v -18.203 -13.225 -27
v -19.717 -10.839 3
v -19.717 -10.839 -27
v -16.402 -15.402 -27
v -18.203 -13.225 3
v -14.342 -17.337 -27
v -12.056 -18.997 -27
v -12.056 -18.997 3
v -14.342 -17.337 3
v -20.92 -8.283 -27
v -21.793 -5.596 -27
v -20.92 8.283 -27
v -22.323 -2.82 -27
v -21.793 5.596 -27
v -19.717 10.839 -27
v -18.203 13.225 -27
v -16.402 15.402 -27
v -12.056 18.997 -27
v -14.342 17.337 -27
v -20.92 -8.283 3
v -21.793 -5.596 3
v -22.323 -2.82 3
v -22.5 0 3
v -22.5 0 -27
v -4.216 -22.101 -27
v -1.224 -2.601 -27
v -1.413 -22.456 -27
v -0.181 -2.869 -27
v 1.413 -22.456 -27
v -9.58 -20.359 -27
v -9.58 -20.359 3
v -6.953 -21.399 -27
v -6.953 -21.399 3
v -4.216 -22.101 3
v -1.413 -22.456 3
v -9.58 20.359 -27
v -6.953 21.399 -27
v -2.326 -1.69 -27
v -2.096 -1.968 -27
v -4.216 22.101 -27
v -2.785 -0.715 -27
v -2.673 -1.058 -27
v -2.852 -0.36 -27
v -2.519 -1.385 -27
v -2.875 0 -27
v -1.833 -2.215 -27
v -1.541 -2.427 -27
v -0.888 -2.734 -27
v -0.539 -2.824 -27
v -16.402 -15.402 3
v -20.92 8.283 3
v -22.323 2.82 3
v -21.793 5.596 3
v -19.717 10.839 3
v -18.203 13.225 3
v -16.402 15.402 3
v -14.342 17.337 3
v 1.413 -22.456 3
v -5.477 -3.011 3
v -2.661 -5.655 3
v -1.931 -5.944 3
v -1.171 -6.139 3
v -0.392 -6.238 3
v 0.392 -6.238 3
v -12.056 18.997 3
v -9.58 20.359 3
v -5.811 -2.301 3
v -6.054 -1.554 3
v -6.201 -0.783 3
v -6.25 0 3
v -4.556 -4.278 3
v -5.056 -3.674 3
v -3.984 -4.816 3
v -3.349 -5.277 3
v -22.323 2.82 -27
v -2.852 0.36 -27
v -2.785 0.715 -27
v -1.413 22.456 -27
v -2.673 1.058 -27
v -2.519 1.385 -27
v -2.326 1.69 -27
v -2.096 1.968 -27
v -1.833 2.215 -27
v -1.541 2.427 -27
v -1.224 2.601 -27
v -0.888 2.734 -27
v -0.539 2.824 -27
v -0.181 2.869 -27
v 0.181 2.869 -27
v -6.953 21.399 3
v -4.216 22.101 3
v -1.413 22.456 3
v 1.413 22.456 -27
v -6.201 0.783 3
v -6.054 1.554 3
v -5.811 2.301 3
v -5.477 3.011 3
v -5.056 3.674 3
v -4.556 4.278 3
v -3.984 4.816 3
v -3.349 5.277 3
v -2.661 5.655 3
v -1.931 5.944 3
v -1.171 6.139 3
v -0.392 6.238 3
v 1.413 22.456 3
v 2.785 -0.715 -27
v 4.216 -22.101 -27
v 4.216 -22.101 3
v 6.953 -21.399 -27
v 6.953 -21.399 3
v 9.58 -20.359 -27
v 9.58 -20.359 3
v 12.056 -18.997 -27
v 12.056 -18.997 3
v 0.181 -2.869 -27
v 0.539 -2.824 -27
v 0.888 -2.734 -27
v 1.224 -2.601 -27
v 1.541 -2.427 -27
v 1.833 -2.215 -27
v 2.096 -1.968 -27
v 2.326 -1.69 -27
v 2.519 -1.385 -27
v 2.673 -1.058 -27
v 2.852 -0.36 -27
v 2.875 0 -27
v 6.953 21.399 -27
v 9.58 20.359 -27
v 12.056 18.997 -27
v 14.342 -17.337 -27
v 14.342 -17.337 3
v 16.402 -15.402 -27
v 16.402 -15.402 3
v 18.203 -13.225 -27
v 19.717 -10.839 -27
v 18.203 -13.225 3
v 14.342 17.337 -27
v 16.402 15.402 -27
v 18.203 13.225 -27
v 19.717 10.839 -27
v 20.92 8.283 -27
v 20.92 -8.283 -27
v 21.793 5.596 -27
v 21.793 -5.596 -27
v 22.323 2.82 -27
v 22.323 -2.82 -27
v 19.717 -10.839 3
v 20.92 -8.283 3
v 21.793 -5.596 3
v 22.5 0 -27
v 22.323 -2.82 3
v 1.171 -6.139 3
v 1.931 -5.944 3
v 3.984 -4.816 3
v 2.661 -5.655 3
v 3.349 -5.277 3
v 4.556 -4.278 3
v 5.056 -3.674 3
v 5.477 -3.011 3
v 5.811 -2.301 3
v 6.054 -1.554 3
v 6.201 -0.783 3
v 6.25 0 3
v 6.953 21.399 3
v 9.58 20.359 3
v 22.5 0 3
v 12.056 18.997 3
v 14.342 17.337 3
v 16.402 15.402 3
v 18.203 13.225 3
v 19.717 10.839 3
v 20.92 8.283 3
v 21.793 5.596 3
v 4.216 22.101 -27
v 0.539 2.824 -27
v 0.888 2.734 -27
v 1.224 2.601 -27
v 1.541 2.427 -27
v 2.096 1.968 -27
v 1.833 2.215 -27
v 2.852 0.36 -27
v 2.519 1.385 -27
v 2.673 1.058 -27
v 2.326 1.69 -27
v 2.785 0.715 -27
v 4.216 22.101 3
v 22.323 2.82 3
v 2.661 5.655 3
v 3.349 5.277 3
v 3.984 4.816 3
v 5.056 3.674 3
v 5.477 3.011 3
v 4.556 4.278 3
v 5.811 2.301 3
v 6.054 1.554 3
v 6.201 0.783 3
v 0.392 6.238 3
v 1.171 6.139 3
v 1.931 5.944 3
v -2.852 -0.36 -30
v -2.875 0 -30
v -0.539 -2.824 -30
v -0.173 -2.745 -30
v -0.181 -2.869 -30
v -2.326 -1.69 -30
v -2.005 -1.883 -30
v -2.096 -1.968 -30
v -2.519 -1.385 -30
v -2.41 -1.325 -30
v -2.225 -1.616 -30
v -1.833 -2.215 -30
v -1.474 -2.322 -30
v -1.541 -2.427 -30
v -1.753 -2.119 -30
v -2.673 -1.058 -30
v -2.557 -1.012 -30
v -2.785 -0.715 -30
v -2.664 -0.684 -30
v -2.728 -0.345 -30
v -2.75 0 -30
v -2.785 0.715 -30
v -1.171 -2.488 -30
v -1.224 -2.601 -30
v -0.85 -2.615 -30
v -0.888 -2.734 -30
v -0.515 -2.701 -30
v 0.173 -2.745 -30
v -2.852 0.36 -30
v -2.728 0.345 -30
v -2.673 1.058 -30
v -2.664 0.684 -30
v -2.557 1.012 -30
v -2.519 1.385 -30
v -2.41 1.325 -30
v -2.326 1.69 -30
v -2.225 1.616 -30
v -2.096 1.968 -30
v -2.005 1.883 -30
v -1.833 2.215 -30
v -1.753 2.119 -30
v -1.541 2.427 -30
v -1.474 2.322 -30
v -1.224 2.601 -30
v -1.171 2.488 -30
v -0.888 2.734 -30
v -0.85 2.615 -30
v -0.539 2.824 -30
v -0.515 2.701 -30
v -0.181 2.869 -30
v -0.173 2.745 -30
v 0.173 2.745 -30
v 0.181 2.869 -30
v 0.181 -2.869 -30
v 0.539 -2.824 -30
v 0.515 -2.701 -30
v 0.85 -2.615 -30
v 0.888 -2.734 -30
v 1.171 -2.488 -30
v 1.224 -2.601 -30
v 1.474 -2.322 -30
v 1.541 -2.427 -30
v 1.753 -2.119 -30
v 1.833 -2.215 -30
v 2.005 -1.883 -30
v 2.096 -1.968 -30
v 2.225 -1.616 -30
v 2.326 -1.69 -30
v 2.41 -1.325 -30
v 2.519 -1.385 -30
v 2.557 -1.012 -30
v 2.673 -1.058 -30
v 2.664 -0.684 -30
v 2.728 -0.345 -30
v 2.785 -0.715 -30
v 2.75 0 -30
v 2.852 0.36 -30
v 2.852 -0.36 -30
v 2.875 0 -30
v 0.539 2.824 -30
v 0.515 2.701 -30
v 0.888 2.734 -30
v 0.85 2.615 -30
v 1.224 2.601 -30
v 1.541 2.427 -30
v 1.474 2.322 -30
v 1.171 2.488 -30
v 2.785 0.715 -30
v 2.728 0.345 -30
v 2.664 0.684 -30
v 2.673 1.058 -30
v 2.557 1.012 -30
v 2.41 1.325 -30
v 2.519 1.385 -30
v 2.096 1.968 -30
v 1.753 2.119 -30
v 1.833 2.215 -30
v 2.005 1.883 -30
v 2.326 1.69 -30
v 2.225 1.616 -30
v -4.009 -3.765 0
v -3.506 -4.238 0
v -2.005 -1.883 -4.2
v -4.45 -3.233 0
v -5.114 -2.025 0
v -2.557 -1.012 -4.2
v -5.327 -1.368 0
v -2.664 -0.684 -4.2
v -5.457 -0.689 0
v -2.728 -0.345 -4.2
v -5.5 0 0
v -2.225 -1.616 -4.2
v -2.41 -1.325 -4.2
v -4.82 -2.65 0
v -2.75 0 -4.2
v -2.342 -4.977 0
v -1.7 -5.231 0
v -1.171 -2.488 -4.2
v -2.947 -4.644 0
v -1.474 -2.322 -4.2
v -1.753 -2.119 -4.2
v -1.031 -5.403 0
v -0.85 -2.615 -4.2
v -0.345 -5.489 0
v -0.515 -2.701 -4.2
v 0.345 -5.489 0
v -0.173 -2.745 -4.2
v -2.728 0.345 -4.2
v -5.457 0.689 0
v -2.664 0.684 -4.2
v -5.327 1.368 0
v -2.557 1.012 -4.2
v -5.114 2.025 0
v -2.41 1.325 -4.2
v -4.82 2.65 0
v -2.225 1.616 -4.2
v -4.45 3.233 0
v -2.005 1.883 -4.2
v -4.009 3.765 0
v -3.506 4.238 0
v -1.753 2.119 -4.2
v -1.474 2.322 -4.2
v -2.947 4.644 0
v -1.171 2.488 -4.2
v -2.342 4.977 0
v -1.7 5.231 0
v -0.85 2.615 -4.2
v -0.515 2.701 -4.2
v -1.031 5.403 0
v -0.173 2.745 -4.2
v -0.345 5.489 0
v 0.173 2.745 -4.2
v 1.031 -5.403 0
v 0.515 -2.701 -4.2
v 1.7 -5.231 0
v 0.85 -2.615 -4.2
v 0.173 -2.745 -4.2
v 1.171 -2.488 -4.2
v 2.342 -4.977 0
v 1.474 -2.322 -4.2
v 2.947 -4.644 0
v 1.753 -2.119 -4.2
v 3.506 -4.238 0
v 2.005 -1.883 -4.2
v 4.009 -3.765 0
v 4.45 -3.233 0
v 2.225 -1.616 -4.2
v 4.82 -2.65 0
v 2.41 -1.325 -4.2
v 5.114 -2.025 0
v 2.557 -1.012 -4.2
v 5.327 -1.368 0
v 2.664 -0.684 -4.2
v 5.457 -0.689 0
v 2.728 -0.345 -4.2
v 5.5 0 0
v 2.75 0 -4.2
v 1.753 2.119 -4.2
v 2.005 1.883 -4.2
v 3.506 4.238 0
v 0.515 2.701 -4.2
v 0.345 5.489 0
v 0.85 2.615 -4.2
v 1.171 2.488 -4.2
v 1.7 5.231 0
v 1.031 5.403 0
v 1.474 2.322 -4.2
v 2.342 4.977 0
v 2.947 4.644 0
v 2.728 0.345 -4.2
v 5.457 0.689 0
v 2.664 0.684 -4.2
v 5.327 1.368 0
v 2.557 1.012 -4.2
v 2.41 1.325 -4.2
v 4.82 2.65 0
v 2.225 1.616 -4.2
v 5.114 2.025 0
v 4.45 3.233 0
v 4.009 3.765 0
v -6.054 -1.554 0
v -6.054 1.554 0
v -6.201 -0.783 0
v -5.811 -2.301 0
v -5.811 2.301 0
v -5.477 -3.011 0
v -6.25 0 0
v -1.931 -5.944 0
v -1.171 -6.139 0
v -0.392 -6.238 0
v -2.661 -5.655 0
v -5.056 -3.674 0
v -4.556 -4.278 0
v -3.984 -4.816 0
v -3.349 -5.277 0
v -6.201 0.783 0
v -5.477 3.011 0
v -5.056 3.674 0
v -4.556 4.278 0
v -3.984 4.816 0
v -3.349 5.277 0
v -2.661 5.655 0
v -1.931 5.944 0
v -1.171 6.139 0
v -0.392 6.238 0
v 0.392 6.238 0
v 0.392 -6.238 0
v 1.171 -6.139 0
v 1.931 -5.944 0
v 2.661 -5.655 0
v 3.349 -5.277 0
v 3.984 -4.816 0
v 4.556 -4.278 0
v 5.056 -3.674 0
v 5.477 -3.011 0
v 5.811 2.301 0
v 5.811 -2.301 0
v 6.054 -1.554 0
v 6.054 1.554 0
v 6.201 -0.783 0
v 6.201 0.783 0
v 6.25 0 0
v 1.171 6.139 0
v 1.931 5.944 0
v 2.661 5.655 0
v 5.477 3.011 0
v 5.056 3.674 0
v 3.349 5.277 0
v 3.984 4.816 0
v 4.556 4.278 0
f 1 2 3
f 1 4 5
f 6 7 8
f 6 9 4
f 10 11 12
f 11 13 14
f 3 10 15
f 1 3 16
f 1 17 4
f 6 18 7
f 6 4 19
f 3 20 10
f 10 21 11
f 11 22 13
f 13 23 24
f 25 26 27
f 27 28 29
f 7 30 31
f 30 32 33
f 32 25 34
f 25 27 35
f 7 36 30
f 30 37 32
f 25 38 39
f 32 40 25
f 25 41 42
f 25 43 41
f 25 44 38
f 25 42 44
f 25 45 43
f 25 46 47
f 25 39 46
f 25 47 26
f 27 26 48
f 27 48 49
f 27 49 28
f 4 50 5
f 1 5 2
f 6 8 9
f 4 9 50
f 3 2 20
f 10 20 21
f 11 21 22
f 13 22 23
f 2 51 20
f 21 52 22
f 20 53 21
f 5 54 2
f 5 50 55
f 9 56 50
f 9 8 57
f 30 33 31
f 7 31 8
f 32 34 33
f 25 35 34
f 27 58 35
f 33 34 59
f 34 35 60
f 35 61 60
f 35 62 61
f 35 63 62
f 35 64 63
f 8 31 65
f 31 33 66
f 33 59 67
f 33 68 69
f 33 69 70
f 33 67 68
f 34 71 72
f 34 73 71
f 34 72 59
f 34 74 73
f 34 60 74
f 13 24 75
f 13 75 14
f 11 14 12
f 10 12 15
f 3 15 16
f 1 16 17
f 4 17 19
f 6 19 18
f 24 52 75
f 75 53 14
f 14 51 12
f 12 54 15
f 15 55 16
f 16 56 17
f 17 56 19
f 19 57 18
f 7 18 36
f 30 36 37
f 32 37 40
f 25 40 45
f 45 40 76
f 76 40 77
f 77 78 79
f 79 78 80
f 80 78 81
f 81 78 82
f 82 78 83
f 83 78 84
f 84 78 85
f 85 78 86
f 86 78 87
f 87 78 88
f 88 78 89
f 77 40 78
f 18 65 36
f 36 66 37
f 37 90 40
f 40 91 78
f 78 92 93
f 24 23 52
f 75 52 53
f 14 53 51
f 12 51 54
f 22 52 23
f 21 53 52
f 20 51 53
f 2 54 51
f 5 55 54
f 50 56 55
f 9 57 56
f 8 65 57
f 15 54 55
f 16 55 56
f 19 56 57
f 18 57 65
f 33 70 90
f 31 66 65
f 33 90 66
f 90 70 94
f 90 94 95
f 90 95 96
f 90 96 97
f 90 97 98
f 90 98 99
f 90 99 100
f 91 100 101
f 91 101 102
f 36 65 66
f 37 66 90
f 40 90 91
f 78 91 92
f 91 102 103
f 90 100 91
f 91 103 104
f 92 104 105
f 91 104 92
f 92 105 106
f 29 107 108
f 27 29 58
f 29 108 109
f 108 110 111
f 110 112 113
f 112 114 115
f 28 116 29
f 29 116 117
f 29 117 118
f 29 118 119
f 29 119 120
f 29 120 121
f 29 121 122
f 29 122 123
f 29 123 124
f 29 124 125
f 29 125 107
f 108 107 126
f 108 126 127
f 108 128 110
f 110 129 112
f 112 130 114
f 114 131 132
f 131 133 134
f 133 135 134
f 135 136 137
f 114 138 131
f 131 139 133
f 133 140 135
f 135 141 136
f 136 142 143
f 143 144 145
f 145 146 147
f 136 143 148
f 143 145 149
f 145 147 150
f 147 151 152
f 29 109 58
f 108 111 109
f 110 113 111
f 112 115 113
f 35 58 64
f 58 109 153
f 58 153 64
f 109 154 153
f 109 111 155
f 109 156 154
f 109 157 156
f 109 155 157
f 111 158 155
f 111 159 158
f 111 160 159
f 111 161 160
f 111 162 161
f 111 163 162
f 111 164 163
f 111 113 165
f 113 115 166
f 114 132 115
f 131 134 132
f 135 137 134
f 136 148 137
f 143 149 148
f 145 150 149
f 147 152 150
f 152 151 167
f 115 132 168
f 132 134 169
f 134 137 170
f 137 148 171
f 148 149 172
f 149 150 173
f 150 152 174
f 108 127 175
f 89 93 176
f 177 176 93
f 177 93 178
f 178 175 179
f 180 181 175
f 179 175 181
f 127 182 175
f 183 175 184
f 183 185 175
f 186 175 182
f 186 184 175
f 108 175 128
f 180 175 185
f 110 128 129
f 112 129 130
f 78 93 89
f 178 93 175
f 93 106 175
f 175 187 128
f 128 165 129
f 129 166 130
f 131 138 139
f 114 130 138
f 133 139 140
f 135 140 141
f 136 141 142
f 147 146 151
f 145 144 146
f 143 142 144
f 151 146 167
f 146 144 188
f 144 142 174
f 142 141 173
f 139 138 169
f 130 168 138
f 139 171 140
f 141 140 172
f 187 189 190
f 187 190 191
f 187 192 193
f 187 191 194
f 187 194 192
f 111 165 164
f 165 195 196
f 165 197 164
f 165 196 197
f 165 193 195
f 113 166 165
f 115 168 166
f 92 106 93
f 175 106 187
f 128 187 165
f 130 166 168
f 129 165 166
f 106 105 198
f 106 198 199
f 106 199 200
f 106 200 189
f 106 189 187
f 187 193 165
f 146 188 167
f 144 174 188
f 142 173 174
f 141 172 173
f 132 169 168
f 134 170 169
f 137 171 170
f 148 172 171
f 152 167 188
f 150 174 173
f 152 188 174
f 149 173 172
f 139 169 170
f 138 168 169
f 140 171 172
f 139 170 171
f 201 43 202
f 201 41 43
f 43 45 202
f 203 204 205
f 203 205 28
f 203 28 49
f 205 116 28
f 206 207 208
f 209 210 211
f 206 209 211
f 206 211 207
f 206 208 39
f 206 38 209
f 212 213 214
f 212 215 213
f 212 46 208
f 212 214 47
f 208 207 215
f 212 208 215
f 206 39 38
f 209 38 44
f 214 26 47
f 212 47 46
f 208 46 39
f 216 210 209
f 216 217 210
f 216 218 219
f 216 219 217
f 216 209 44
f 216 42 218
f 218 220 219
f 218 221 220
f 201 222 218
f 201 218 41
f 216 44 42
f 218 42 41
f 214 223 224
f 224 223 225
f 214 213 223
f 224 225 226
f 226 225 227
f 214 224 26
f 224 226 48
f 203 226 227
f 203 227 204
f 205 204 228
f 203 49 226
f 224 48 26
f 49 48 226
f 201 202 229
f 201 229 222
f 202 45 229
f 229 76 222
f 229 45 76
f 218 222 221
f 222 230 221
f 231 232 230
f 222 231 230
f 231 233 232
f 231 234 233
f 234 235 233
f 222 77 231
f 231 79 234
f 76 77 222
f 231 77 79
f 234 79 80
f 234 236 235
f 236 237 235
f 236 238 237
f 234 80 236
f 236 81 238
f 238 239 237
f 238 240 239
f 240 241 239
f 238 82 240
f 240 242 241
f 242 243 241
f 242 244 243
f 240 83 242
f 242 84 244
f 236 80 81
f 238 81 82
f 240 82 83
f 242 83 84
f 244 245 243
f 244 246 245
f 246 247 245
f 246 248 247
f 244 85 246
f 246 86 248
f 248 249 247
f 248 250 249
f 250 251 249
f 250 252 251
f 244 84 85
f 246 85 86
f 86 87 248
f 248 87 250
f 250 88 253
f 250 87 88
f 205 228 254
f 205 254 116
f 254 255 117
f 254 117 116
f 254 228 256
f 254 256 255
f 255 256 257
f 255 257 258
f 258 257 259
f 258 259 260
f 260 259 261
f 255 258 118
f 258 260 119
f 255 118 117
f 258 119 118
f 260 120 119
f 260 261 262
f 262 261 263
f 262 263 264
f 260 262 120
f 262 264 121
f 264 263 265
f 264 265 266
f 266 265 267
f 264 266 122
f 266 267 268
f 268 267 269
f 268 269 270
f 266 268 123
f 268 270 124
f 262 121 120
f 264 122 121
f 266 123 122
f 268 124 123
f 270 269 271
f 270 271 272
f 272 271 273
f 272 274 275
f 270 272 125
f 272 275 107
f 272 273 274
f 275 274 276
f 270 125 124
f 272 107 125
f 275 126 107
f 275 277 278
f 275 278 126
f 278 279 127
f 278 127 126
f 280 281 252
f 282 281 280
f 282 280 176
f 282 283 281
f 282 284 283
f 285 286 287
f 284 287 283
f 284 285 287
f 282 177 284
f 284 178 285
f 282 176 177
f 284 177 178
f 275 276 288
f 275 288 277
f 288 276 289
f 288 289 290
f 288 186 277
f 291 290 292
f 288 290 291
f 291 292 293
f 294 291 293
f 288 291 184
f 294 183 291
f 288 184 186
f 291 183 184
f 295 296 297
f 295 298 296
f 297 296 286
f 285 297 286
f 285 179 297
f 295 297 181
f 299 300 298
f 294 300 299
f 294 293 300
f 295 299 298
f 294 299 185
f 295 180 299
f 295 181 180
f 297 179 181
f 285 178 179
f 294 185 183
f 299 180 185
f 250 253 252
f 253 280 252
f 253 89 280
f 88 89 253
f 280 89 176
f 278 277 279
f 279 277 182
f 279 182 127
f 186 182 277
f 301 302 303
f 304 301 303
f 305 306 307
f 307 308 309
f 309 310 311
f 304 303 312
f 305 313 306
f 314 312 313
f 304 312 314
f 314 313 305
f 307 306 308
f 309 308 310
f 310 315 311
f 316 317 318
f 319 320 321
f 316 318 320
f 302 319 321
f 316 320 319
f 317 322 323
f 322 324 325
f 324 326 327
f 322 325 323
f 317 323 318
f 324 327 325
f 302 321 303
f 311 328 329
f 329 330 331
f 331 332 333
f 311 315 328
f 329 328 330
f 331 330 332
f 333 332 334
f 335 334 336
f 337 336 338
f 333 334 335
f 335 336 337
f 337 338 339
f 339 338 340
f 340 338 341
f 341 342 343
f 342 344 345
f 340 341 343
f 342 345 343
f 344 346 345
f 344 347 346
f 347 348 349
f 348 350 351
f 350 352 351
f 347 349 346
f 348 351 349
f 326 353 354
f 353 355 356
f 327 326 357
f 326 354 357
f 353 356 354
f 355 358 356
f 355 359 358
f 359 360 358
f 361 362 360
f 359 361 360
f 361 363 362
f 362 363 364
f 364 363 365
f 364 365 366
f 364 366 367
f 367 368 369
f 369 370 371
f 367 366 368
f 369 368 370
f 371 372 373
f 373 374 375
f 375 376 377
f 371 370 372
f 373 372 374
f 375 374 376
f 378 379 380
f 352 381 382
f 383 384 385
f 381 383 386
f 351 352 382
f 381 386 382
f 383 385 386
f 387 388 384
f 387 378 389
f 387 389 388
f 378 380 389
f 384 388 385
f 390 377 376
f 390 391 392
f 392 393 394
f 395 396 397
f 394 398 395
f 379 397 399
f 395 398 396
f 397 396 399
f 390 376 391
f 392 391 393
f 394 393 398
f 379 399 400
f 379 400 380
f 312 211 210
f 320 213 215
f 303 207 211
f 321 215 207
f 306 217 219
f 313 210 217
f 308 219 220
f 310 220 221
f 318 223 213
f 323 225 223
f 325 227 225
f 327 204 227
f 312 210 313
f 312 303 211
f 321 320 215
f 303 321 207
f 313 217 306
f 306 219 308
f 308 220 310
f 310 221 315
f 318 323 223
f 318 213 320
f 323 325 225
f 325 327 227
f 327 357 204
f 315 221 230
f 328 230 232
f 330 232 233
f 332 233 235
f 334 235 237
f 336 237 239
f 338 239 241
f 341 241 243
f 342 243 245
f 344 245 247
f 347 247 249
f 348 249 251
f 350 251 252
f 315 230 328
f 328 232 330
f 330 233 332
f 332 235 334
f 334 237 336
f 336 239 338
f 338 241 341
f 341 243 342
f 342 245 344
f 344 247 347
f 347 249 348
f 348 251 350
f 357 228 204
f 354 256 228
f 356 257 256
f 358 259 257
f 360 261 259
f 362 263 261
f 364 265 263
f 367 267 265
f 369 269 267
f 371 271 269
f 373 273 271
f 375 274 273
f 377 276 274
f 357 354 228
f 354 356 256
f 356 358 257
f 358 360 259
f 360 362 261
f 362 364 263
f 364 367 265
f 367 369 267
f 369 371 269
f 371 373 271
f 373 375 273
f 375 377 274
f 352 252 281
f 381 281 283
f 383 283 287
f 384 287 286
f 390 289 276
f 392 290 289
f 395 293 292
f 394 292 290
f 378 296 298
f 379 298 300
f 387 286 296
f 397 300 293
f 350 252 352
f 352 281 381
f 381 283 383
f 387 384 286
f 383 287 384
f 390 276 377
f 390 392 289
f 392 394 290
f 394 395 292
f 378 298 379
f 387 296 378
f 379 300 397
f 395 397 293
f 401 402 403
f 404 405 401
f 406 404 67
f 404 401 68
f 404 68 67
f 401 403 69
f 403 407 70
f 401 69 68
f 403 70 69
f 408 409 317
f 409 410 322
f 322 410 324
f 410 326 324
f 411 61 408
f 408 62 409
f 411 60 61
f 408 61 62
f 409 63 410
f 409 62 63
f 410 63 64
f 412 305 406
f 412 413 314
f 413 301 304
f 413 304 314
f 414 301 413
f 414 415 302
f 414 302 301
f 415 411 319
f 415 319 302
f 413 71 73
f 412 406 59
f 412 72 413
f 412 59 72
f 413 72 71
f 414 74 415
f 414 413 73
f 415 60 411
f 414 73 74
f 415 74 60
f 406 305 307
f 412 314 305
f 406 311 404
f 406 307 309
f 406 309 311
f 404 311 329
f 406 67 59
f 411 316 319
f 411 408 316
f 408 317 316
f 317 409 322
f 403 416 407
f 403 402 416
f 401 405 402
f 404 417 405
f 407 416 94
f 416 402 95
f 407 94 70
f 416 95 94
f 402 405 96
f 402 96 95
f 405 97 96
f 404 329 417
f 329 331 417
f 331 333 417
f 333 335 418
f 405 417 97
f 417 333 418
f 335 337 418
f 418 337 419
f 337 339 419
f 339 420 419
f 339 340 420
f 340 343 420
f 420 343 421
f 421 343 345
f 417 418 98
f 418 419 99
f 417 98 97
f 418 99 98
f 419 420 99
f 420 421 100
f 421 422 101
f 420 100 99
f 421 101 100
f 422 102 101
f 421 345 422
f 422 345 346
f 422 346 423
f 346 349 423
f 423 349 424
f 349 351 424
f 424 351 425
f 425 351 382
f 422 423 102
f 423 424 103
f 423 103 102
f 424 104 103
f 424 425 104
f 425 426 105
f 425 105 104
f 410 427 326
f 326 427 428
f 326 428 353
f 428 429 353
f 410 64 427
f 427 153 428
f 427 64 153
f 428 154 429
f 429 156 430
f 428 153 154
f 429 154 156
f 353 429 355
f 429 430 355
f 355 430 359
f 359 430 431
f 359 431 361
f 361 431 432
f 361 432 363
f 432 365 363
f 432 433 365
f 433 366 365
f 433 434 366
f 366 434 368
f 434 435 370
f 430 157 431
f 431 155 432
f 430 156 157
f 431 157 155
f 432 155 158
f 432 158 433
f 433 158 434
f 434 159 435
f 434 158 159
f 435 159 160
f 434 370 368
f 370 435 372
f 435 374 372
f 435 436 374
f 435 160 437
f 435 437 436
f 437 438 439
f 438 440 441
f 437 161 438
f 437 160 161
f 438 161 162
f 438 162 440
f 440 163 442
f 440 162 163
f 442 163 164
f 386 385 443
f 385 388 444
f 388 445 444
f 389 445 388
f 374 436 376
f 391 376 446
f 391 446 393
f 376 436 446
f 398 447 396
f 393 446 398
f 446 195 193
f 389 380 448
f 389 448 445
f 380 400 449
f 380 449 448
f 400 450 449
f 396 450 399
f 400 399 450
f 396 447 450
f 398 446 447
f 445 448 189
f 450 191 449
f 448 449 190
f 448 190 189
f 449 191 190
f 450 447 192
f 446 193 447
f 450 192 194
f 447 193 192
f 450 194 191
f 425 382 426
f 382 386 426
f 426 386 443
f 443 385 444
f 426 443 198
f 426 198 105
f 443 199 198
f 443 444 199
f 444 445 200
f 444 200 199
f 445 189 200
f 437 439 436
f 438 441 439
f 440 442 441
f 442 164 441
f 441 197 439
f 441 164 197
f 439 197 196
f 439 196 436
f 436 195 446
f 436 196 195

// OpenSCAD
$fn = 50;

difference() {
	union() {
		translate(v = [0, 0, -27.0]) {
			cylinder(h = 30, r = 22.5);
		}
		#translate(v = [0, 0, -30.0]) {
			cylinder(h = 30, r = 2.875);
		}
	}
	union() {
		translate(v = [0, 0, 0]) {
			rotate(a = [0, 0, 0]) {
				difference() {
					union() {
						translate(v = [0, 0, -30.0]) {
							cylinder(h = 30, r = 2.25);
						}
						translate(v = [0, 0, -4.2]) {
							cylinder(h = 4.2, r1 = 2.75, r2 = 5.5);
						}
						translate(v = [0, 0, -30.0]) {
							cylinder(h = 30, r = 2.75);
						}
						translate(v = [0, 0, -30.0]) {
							cylinder(h = 30, r = 2.25);
						}
					}
					union();
				}
			}
		}
		#cylinder(h = 3, r = 6.25);
	}
}
